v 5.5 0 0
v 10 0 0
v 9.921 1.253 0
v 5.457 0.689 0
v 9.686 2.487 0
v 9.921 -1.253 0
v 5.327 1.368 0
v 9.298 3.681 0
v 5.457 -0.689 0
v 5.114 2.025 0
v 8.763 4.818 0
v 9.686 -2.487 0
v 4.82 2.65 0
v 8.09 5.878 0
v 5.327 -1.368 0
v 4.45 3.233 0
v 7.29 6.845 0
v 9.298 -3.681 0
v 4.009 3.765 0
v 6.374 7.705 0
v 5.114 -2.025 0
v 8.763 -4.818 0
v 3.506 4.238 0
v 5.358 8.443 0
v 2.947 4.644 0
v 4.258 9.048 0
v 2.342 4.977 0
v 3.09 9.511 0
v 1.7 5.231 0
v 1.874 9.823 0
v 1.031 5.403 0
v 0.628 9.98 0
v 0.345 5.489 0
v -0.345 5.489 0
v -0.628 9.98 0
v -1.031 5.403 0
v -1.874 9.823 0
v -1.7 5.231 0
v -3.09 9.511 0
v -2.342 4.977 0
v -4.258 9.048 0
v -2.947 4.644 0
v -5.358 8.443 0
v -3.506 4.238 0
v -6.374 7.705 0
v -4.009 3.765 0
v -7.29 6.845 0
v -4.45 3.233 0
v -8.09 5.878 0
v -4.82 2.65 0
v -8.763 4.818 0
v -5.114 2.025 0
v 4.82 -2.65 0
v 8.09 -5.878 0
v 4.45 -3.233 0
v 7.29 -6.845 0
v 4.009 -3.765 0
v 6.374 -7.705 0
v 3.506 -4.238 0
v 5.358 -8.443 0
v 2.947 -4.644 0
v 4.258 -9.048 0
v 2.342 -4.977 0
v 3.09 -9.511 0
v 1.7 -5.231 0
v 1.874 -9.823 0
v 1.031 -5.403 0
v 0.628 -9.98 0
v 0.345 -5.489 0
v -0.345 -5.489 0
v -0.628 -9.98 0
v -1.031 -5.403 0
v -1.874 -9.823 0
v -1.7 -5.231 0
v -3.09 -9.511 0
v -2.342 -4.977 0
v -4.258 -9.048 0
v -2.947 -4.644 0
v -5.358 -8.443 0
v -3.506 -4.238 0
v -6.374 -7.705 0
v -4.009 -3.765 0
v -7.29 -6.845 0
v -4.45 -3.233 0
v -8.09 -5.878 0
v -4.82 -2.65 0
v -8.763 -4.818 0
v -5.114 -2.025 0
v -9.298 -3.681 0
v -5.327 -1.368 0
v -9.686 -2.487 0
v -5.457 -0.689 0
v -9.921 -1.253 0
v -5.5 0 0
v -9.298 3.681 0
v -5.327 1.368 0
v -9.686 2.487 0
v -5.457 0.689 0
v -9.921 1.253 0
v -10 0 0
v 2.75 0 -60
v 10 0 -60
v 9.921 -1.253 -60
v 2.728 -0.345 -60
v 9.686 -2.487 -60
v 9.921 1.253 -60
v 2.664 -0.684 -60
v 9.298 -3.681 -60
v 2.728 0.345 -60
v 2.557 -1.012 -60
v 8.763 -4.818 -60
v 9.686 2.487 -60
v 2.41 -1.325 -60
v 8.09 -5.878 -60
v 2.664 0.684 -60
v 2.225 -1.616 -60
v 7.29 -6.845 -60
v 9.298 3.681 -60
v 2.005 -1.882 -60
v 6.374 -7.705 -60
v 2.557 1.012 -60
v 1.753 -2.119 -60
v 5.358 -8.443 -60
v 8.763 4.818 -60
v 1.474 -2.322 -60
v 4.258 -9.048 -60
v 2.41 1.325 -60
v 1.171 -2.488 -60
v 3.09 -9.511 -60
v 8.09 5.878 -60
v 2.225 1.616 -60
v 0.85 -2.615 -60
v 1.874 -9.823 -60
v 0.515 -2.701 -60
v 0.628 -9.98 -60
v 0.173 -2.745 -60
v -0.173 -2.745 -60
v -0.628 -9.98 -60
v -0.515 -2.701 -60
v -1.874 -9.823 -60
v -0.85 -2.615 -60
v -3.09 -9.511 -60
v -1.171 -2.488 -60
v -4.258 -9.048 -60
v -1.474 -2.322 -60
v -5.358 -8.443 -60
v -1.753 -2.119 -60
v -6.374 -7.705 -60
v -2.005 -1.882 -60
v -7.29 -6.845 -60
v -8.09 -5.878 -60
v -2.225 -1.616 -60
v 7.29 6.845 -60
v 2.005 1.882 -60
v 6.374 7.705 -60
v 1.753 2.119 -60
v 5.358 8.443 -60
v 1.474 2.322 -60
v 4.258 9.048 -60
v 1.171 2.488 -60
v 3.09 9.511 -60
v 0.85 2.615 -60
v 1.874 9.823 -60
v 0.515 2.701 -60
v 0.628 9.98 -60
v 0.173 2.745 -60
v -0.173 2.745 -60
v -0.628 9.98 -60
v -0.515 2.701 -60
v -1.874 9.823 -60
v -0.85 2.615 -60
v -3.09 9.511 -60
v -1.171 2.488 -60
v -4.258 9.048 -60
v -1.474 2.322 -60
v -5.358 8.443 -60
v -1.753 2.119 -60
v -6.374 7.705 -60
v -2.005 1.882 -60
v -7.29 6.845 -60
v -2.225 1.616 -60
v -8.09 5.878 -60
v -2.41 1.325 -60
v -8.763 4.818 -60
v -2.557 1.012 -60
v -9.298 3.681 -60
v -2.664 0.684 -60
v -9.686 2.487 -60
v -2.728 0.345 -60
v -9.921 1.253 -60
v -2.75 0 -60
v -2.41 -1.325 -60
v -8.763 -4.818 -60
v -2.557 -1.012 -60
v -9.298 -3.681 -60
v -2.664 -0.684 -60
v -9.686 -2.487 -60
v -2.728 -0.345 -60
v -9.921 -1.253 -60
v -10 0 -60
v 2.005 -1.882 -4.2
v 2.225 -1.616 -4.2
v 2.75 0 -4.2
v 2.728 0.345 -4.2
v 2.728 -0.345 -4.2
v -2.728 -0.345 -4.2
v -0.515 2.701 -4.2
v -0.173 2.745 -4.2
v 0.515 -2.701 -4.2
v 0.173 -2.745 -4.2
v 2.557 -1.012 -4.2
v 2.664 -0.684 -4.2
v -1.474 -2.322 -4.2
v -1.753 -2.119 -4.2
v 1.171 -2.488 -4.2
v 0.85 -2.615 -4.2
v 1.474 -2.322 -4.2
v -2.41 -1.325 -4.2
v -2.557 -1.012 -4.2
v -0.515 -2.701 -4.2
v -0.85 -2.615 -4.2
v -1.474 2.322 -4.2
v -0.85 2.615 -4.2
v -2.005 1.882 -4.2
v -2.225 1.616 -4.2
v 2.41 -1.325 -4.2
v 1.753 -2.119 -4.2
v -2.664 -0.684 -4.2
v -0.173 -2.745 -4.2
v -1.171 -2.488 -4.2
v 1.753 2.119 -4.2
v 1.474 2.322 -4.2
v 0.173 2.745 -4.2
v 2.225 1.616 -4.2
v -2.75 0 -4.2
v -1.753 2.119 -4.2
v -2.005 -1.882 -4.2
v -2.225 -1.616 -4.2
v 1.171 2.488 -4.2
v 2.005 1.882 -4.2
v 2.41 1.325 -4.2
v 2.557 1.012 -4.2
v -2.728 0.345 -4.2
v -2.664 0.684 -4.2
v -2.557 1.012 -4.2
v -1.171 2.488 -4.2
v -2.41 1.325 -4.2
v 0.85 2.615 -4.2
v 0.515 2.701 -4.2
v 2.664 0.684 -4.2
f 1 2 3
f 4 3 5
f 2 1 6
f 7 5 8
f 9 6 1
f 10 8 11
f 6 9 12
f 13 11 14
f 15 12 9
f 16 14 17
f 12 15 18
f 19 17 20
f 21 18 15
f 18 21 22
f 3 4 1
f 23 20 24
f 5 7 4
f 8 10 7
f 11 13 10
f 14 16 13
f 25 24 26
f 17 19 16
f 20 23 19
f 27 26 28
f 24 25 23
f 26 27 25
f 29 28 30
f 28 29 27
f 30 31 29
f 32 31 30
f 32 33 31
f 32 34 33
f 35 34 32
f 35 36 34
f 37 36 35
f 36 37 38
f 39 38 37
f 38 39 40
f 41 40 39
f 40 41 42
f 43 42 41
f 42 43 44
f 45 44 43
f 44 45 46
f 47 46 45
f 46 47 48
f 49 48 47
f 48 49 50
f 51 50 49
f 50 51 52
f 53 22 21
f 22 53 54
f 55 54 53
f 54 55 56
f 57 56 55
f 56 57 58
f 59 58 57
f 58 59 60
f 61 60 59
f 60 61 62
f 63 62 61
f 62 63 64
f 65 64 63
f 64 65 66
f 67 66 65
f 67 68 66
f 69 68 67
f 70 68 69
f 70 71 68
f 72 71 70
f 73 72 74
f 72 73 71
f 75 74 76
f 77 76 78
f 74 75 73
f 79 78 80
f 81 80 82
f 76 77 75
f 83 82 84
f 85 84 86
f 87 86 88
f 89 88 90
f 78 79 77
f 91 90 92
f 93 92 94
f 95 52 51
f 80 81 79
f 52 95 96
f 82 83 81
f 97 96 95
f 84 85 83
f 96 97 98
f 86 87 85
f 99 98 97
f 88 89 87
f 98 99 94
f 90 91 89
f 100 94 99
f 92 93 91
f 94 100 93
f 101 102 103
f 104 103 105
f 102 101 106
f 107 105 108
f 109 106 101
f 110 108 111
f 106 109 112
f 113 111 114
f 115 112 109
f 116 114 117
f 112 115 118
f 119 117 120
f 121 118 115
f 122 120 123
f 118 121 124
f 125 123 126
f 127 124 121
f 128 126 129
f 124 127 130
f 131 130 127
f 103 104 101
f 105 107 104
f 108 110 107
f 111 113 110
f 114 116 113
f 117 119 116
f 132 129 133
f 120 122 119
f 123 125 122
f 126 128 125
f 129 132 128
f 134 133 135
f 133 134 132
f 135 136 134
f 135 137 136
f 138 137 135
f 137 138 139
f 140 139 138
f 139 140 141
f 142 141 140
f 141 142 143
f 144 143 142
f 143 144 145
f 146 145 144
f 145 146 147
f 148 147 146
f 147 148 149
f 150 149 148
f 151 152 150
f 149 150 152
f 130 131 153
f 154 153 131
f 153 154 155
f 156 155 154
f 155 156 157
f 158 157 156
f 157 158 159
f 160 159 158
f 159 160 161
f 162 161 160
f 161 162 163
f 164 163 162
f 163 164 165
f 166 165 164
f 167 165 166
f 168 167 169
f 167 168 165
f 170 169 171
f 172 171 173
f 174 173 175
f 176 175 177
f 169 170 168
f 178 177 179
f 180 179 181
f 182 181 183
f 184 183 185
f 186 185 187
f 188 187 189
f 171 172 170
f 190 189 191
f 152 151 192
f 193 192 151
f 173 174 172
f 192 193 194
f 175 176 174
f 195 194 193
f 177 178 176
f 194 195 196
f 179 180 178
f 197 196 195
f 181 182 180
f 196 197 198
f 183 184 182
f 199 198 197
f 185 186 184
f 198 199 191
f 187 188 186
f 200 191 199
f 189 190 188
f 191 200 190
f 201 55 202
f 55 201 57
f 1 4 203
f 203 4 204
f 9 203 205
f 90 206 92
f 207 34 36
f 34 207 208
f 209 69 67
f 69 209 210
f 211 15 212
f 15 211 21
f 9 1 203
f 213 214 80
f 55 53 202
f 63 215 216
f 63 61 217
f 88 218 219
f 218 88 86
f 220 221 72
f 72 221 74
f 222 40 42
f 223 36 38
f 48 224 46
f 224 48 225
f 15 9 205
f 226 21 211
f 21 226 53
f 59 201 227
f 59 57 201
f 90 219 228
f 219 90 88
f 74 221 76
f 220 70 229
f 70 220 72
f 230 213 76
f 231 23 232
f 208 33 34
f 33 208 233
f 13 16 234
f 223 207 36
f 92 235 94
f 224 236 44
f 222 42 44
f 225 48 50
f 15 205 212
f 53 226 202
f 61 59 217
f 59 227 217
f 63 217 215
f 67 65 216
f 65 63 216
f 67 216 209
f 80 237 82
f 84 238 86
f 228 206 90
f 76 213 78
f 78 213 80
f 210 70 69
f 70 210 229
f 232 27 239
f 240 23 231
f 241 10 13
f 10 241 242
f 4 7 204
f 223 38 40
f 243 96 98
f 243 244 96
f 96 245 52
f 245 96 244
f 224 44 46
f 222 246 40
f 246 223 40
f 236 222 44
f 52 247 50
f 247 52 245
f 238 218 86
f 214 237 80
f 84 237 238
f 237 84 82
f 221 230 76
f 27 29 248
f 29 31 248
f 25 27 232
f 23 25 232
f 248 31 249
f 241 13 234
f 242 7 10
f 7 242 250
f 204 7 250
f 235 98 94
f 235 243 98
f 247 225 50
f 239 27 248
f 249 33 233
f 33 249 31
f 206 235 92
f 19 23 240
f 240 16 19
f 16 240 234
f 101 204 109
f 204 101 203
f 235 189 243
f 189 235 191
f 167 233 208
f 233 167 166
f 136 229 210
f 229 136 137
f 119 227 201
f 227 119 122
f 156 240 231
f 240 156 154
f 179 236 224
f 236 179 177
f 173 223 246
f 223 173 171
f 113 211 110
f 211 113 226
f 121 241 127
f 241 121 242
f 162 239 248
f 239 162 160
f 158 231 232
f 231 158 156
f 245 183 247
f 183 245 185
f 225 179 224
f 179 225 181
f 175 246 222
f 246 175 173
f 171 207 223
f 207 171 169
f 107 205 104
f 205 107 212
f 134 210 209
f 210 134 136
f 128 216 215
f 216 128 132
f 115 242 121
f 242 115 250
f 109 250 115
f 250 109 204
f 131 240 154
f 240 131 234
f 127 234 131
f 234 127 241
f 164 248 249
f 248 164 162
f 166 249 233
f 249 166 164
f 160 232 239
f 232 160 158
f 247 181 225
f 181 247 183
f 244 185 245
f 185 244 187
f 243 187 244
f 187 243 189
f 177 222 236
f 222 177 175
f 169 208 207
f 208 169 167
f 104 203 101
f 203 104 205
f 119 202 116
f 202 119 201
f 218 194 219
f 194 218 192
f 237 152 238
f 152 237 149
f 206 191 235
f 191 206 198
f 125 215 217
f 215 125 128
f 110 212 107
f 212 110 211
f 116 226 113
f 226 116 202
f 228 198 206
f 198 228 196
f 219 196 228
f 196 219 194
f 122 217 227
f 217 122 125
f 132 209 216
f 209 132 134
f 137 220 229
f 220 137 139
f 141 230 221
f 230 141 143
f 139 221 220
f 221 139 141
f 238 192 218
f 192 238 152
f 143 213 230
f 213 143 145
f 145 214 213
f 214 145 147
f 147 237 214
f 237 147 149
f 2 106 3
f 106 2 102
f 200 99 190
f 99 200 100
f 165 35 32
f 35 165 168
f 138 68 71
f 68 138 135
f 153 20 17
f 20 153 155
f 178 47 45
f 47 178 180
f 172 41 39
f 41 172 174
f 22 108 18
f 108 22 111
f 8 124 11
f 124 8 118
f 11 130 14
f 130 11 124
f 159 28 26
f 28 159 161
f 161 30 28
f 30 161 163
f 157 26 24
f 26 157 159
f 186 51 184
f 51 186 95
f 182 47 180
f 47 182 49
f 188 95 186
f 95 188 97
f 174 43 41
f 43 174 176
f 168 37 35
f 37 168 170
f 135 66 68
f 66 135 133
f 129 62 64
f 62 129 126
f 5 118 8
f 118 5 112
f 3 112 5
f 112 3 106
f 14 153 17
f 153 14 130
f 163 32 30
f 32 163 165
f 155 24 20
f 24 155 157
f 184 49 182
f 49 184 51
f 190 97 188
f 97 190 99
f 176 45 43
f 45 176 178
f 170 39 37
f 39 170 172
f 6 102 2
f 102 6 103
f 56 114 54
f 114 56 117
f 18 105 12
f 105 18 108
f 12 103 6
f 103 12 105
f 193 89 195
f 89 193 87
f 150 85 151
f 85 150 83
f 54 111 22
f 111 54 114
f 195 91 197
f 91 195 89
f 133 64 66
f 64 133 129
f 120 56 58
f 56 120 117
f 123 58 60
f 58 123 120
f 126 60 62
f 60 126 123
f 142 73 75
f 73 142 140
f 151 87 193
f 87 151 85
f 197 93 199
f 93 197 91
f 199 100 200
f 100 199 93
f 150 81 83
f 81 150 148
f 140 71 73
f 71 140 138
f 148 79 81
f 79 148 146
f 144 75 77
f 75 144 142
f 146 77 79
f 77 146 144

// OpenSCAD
$fn = 50;


difference() {
	union() {
		translate(v = [0, 0, -60.0000000000]) {
			cylinder(h = 60, r = 10.0000000000);
		}
		cylinder(h = 0, r = 13.0000000000);
	}
	union() {
		translate(v = [0, 0, 0]) {
			rotate(a = [0, 0, 0]) {
				difference() {
					union() {
						#translate(v = [0, 0, -60.0000000000]) {
							cylinder(h = 60, r = 2.2500000000);
						}
						#translate(v = [0, 0, -4.2000000000]) {
							cylinder(h = 4.2000000000, r1 = 2.7500000000, r2 = 5.5000000000);
						}
						#translate(v = [0, 0, -60.0000000000]) {
							cylinder(h = 60, r = 2.7500000000);
						}
						#translate(v = [0, 0, -60.0000000000]) {
							cylinder(h = 60, r = 2.2500000000);
						}
					}
					union();
				}
			}
		}
	}
}
